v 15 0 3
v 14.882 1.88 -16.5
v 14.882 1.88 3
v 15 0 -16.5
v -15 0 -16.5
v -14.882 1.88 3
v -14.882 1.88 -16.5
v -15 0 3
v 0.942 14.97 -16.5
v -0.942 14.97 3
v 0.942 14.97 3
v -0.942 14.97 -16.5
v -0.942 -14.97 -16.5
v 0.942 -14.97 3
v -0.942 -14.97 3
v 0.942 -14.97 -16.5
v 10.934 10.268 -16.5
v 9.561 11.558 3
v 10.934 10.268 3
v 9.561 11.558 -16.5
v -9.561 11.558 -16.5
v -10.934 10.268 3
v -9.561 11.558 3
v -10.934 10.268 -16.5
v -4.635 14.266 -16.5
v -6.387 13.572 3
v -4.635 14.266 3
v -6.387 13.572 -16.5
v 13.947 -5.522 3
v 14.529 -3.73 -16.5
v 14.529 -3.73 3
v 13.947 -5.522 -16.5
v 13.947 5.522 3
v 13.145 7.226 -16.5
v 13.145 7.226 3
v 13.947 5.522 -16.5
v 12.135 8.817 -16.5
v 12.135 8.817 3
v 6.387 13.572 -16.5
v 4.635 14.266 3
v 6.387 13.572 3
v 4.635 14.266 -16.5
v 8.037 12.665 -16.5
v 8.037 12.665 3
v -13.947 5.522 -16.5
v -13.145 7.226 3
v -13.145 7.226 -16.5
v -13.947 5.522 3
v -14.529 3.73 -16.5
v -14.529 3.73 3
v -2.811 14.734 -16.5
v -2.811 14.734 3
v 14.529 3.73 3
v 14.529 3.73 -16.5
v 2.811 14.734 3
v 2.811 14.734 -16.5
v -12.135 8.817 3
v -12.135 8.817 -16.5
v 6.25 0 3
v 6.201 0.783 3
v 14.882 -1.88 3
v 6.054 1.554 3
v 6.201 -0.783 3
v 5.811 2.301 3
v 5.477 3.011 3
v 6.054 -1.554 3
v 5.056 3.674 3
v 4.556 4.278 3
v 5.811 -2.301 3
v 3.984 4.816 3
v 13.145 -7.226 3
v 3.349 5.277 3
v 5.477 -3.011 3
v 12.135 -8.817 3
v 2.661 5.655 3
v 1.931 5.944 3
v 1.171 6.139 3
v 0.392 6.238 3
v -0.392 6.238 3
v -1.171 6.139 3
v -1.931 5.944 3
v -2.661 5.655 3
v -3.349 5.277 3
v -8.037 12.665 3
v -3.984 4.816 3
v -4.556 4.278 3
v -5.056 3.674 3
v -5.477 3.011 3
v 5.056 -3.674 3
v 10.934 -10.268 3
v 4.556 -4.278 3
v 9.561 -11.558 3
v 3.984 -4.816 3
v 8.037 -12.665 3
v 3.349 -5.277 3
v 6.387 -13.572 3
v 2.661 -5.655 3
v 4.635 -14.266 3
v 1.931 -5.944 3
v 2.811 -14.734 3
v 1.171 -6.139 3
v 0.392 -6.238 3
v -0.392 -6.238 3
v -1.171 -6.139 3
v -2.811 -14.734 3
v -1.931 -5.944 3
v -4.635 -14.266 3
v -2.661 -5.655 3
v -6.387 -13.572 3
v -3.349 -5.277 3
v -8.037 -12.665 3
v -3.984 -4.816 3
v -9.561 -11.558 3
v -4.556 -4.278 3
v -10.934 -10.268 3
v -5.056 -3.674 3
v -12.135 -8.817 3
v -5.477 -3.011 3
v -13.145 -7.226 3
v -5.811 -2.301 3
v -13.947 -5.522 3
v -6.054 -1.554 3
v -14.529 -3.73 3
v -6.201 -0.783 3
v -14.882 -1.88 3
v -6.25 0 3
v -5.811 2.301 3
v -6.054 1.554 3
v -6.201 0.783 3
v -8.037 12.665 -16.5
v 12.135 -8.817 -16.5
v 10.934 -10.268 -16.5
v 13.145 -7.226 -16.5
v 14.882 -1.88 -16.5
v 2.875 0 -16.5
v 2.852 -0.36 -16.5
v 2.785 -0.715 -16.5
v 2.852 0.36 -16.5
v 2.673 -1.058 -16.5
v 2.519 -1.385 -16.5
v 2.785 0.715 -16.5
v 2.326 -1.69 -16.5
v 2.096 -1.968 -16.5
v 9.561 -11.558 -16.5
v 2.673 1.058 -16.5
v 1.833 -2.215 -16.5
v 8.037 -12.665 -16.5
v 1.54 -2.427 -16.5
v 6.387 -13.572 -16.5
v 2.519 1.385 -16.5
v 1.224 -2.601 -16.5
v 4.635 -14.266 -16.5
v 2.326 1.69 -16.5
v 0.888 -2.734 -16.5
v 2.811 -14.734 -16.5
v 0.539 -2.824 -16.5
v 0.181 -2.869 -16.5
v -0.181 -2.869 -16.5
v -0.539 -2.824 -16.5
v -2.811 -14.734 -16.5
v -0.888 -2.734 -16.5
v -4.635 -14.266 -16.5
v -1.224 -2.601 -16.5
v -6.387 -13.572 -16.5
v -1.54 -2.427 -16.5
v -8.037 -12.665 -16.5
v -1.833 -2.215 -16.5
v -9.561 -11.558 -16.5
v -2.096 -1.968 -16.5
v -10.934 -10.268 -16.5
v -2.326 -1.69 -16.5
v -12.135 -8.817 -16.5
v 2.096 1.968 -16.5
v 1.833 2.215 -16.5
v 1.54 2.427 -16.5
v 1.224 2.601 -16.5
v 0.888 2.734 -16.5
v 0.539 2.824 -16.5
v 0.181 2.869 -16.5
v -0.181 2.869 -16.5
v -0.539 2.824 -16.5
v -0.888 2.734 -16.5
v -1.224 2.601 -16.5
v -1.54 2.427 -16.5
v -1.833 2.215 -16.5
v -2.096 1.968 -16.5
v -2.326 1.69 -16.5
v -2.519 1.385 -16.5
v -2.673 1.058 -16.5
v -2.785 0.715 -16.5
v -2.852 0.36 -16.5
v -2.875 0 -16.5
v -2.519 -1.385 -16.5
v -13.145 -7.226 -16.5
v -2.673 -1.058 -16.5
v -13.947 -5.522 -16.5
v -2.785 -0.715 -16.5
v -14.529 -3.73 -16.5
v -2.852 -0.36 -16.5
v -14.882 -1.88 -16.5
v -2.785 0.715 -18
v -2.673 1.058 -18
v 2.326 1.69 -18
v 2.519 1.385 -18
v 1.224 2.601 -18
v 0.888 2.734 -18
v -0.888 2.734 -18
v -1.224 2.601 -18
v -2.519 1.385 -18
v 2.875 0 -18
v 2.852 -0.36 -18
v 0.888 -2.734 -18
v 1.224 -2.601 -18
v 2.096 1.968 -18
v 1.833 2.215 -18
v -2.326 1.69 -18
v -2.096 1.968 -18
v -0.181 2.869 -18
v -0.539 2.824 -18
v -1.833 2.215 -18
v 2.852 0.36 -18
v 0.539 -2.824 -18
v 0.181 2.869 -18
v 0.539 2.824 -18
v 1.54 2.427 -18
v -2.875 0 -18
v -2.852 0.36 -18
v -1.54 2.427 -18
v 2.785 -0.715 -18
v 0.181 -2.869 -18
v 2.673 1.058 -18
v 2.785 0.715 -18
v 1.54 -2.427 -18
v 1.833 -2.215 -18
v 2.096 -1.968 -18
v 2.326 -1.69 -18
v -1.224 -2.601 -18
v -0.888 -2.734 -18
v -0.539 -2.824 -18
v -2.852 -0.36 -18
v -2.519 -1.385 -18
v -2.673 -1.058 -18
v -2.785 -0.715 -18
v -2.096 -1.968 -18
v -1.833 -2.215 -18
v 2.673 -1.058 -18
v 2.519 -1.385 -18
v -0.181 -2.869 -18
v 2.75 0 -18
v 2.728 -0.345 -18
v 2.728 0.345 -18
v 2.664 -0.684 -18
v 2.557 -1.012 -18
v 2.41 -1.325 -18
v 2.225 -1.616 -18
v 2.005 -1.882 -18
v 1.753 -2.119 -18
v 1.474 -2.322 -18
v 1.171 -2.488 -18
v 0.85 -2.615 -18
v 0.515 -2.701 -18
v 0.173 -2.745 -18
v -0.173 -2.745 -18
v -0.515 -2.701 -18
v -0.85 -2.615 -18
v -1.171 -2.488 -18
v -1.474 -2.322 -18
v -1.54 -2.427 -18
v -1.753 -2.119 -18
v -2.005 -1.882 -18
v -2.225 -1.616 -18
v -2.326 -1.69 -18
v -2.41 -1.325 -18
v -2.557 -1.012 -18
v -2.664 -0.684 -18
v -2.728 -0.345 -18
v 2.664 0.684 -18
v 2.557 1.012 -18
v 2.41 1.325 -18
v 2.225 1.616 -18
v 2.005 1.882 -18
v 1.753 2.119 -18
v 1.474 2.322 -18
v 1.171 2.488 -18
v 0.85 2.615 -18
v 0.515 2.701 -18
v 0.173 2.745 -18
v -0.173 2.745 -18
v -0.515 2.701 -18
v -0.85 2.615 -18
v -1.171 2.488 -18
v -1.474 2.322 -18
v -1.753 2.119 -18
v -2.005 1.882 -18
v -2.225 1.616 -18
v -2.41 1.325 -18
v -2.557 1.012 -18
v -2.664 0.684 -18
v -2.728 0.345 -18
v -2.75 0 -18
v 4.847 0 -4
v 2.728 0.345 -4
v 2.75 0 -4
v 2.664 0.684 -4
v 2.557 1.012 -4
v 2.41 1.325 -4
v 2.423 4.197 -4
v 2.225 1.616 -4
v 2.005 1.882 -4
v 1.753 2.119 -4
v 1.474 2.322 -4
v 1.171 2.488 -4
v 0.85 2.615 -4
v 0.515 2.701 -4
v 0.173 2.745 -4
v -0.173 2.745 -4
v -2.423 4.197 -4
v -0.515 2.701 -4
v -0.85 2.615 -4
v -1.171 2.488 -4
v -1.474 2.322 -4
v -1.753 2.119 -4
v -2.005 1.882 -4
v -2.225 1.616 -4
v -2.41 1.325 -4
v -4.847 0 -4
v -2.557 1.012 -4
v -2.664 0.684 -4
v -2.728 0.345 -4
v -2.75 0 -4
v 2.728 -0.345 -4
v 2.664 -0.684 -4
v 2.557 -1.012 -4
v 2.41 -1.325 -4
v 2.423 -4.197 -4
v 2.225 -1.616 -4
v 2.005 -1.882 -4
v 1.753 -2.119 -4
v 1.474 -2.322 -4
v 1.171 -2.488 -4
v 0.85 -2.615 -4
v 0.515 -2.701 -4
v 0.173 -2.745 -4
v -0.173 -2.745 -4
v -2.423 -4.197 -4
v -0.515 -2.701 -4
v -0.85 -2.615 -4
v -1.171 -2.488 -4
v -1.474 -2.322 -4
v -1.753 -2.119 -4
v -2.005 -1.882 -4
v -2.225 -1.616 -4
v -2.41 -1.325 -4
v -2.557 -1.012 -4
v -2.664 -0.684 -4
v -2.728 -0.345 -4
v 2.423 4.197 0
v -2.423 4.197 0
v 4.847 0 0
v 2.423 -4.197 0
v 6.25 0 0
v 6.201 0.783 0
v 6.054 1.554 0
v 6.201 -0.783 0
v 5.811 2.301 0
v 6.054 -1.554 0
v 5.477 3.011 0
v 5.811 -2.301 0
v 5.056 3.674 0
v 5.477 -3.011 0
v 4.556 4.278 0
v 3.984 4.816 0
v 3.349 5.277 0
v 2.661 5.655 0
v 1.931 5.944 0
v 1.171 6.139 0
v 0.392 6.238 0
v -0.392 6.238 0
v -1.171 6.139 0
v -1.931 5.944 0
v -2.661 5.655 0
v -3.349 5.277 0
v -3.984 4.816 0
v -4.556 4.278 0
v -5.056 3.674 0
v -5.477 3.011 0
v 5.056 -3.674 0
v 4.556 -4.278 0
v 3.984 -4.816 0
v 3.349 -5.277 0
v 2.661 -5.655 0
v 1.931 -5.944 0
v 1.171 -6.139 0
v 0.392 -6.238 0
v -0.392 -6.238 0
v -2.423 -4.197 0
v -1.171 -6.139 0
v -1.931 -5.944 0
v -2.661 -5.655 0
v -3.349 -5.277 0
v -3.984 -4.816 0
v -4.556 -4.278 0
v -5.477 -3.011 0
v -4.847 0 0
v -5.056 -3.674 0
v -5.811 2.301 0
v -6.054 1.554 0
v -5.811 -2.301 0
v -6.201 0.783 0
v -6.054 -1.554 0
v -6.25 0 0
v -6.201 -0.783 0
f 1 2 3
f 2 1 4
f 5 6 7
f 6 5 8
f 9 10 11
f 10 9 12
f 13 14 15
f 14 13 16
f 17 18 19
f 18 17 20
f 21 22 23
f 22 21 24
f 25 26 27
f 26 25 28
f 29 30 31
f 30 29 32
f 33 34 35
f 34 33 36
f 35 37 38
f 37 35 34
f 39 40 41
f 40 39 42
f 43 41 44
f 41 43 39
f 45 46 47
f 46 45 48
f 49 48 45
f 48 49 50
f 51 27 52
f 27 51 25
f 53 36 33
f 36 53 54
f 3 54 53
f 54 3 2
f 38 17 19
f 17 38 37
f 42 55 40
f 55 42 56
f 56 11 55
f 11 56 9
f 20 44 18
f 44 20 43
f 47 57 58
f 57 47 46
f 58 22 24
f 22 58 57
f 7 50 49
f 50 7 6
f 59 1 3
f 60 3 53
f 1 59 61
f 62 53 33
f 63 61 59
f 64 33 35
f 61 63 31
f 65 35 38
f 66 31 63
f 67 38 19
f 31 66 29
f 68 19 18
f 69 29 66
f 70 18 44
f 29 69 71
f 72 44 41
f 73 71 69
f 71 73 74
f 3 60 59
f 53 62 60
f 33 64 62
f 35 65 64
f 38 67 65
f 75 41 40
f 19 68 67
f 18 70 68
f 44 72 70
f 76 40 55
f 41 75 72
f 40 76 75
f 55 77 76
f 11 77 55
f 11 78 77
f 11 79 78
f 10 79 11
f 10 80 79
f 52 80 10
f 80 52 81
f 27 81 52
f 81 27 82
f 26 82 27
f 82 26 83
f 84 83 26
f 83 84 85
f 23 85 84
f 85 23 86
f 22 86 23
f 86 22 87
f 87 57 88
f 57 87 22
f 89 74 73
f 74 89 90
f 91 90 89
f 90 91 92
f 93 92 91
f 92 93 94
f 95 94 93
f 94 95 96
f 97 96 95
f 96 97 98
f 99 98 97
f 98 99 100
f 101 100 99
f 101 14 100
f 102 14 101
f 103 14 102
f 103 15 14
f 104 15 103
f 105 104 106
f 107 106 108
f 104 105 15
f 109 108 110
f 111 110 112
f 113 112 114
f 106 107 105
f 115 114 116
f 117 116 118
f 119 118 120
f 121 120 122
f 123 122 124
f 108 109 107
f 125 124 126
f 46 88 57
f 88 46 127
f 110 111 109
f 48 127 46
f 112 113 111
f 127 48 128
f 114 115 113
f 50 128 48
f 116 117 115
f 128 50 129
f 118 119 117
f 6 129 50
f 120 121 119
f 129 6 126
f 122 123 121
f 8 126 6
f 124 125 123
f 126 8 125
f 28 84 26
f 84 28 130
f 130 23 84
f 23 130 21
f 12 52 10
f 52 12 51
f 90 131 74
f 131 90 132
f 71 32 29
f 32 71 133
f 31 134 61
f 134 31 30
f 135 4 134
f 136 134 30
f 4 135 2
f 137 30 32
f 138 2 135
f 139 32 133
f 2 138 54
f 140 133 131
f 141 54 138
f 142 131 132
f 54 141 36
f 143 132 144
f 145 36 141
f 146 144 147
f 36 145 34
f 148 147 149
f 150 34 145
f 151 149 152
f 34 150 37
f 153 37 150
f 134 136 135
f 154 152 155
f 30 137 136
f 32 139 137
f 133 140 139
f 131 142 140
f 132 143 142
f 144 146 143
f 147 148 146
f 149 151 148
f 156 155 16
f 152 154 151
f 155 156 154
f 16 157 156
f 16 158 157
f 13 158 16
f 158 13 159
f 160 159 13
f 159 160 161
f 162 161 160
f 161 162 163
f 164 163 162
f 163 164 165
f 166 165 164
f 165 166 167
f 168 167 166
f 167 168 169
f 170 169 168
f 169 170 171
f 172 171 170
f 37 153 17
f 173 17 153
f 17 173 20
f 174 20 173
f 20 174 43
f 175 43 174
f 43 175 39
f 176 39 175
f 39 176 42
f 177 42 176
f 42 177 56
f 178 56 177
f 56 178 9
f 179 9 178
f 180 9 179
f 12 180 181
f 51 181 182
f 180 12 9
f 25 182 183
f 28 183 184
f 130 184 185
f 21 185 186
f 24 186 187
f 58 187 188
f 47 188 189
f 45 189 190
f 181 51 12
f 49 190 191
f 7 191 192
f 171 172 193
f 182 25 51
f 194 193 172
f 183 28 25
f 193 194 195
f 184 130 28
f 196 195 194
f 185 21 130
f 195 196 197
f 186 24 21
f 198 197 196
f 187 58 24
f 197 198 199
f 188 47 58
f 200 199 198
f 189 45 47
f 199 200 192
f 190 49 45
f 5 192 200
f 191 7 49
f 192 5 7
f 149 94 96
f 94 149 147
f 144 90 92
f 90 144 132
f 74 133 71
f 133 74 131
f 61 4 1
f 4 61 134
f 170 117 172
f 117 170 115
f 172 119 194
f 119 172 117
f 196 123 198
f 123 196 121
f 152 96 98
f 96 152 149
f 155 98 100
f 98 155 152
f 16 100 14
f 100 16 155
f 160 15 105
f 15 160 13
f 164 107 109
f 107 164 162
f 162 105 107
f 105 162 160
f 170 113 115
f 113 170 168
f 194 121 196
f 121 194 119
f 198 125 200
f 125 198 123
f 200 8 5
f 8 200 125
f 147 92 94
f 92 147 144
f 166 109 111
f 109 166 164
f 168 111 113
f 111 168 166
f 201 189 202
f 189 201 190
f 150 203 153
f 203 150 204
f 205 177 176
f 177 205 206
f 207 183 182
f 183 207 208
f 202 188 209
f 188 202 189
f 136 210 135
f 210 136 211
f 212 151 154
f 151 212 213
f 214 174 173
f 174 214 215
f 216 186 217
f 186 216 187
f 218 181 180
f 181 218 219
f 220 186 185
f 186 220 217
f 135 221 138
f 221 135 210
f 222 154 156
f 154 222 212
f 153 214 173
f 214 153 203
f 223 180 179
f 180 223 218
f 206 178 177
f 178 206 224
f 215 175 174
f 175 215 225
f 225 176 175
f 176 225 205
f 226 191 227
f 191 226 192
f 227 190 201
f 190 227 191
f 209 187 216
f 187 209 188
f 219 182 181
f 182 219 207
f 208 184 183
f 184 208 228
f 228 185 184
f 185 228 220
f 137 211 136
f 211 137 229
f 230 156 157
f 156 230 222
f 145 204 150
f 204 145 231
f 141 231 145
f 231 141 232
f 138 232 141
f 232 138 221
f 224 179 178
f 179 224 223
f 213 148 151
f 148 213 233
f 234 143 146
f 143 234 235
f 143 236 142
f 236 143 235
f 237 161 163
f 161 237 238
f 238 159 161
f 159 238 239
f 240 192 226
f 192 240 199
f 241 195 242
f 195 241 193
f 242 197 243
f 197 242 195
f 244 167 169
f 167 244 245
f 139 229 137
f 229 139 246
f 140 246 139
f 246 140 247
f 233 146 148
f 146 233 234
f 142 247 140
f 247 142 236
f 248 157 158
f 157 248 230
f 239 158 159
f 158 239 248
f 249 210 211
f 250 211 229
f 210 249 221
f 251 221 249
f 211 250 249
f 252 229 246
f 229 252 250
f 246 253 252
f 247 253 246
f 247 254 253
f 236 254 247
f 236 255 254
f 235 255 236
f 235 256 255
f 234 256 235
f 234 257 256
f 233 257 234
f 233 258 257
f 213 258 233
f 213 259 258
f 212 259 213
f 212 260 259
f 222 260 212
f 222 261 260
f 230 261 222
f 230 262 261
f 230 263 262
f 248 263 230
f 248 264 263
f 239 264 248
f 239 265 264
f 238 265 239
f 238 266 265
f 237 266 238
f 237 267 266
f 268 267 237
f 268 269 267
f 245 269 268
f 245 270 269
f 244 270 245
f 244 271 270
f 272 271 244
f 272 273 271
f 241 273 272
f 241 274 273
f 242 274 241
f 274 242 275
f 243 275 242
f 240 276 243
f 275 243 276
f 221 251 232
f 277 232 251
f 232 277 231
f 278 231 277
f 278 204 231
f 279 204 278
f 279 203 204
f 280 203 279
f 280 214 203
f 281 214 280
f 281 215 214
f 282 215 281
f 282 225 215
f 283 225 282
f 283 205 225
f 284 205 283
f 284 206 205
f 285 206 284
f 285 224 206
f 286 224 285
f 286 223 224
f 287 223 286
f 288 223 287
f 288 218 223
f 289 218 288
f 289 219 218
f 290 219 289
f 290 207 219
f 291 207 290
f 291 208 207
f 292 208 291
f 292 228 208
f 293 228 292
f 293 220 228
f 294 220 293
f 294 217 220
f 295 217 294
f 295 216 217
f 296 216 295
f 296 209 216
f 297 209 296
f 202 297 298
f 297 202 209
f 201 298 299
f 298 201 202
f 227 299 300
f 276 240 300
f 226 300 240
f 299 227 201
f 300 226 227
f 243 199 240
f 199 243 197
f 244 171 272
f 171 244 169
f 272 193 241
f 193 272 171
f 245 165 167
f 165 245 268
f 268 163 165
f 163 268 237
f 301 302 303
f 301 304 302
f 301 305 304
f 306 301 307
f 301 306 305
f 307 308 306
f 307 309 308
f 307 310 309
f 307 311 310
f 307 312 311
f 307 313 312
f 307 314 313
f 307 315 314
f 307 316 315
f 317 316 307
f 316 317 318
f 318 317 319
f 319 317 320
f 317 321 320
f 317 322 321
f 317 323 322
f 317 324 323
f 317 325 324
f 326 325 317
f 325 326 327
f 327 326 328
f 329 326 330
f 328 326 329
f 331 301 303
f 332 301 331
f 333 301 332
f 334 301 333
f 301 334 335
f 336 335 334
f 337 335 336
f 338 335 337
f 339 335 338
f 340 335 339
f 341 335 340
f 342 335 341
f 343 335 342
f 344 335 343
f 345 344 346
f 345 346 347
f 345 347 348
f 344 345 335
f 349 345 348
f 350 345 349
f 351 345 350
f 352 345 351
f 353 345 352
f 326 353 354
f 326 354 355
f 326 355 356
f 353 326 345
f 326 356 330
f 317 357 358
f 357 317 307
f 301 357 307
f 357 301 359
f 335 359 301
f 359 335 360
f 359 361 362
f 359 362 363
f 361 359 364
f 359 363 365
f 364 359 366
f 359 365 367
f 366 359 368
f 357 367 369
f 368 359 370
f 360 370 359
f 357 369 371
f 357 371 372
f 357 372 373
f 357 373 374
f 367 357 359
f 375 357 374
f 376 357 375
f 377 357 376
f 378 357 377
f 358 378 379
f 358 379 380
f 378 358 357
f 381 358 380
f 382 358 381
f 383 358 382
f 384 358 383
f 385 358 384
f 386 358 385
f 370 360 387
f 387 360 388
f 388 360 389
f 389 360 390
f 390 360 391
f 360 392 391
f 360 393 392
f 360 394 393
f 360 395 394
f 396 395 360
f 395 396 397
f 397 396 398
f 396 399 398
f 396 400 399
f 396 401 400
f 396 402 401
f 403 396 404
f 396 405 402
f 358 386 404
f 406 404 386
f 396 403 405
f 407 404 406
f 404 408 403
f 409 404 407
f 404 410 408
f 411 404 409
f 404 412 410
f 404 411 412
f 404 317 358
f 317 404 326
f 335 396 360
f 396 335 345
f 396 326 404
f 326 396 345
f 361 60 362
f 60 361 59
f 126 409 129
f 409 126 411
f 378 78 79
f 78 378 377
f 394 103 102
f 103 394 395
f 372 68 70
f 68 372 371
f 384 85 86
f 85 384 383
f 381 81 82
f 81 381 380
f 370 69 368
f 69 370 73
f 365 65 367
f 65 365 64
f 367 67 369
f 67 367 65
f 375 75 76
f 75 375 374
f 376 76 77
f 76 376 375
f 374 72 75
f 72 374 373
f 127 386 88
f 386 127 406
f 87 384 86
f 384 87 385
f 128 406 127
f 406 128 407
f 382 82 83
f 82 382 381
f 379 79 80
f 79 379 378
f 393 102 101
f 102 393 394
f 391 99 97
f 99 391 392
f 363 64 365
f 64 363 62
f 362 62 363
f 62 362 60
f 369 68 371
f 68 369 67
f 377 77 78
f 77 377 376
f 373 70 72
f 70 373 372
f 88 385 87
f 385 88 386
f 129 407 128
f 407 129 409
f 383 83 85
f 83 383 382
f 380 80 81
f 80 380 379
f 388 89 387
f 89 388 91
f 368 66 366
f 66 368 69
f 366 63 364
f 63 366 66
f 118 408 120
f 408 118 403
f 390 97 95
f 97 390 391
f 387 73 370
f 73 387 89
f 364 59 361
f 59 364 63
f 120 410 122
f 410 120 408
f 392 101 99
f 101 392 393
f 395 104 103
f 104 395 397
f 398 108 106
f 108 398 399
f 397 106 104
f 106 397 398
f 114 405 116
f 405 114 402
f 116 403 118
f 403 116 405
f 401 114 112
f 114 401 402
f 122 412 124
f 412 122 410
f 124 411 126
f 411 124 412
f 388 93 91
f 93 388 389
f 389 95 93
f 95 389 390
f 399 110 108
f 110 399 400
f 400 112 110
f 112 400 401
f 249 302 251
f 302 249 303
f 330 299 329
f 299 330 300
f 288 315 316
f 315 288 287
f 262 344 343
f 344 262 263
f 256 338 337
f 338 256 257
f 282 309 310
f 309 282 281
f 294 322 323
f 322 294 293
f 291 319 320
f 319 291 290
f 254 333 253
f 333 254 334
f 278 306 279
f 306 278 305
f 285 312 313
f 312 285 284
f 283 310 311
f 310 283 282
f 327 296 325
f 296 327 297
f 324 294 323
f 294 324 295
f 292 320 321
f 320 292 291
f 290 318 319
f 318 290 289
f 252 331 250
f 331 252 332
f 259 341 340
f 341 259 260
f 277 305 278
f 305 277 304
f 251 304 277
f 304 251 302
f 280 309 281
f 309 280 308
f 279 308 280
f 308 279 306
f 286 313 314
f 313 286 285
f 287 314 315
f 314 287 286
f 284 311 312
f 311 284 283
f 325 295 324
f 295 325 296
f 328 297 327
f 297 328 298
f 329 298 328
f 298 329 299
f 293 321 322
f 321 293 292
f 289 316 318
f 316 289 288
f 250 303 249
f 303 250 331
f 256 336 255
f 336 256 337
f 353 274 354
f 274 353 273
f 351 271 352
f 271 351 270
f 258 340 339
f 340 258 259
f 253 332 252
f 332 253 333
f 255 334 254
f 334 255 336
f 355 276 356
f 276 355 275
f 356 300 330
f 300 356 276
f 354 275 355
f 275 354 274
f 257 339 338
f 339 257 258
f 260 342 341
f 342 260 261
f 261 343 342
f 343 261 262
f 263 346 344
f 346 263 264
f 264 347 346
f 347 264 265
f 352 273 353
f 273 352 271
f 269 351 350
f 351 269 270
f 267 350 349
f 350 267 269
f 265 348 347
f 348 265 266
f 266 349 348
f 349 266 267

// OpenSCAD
$fn = 50;


difference() {
	union() {
		translate(v = [0, 0, -16.5000000000]) {
			cylinder(h = 19.5000000000, r = 15.0000000000);
		}
		#translate(v = [0, 0, -18.0000000000]) {
			cylinder(h = 18, r = 2.8750000000);
		}
	}
	union() {
		translate(v = [0, 0, 0]) {
			rotate(a = [0, 0, 0]) {
				difference() {
					union() {
						translate(v = [0, 0, -4]) {
							linear_extrude(height = 4) {
								polygon(points = [[4.8468000000, 0.0000000000], [2.4234000000, 4.1974519271], [-2.4234000000, 4.1974519271], [-4.8468000000, 0.0000000000], [-2.4234000000, -4.1974519271], [2.4234000000, -4.1974519271]]);
							}
						}
					}
					union();
				}
			}
		}
		#cylinder(h = 3, r = 6.2500000000);
		#translate(v = [0, 0, -100.0000000000]) {
			cylinder(h = 200, r = 2.7500000000);
		}
	}
}
